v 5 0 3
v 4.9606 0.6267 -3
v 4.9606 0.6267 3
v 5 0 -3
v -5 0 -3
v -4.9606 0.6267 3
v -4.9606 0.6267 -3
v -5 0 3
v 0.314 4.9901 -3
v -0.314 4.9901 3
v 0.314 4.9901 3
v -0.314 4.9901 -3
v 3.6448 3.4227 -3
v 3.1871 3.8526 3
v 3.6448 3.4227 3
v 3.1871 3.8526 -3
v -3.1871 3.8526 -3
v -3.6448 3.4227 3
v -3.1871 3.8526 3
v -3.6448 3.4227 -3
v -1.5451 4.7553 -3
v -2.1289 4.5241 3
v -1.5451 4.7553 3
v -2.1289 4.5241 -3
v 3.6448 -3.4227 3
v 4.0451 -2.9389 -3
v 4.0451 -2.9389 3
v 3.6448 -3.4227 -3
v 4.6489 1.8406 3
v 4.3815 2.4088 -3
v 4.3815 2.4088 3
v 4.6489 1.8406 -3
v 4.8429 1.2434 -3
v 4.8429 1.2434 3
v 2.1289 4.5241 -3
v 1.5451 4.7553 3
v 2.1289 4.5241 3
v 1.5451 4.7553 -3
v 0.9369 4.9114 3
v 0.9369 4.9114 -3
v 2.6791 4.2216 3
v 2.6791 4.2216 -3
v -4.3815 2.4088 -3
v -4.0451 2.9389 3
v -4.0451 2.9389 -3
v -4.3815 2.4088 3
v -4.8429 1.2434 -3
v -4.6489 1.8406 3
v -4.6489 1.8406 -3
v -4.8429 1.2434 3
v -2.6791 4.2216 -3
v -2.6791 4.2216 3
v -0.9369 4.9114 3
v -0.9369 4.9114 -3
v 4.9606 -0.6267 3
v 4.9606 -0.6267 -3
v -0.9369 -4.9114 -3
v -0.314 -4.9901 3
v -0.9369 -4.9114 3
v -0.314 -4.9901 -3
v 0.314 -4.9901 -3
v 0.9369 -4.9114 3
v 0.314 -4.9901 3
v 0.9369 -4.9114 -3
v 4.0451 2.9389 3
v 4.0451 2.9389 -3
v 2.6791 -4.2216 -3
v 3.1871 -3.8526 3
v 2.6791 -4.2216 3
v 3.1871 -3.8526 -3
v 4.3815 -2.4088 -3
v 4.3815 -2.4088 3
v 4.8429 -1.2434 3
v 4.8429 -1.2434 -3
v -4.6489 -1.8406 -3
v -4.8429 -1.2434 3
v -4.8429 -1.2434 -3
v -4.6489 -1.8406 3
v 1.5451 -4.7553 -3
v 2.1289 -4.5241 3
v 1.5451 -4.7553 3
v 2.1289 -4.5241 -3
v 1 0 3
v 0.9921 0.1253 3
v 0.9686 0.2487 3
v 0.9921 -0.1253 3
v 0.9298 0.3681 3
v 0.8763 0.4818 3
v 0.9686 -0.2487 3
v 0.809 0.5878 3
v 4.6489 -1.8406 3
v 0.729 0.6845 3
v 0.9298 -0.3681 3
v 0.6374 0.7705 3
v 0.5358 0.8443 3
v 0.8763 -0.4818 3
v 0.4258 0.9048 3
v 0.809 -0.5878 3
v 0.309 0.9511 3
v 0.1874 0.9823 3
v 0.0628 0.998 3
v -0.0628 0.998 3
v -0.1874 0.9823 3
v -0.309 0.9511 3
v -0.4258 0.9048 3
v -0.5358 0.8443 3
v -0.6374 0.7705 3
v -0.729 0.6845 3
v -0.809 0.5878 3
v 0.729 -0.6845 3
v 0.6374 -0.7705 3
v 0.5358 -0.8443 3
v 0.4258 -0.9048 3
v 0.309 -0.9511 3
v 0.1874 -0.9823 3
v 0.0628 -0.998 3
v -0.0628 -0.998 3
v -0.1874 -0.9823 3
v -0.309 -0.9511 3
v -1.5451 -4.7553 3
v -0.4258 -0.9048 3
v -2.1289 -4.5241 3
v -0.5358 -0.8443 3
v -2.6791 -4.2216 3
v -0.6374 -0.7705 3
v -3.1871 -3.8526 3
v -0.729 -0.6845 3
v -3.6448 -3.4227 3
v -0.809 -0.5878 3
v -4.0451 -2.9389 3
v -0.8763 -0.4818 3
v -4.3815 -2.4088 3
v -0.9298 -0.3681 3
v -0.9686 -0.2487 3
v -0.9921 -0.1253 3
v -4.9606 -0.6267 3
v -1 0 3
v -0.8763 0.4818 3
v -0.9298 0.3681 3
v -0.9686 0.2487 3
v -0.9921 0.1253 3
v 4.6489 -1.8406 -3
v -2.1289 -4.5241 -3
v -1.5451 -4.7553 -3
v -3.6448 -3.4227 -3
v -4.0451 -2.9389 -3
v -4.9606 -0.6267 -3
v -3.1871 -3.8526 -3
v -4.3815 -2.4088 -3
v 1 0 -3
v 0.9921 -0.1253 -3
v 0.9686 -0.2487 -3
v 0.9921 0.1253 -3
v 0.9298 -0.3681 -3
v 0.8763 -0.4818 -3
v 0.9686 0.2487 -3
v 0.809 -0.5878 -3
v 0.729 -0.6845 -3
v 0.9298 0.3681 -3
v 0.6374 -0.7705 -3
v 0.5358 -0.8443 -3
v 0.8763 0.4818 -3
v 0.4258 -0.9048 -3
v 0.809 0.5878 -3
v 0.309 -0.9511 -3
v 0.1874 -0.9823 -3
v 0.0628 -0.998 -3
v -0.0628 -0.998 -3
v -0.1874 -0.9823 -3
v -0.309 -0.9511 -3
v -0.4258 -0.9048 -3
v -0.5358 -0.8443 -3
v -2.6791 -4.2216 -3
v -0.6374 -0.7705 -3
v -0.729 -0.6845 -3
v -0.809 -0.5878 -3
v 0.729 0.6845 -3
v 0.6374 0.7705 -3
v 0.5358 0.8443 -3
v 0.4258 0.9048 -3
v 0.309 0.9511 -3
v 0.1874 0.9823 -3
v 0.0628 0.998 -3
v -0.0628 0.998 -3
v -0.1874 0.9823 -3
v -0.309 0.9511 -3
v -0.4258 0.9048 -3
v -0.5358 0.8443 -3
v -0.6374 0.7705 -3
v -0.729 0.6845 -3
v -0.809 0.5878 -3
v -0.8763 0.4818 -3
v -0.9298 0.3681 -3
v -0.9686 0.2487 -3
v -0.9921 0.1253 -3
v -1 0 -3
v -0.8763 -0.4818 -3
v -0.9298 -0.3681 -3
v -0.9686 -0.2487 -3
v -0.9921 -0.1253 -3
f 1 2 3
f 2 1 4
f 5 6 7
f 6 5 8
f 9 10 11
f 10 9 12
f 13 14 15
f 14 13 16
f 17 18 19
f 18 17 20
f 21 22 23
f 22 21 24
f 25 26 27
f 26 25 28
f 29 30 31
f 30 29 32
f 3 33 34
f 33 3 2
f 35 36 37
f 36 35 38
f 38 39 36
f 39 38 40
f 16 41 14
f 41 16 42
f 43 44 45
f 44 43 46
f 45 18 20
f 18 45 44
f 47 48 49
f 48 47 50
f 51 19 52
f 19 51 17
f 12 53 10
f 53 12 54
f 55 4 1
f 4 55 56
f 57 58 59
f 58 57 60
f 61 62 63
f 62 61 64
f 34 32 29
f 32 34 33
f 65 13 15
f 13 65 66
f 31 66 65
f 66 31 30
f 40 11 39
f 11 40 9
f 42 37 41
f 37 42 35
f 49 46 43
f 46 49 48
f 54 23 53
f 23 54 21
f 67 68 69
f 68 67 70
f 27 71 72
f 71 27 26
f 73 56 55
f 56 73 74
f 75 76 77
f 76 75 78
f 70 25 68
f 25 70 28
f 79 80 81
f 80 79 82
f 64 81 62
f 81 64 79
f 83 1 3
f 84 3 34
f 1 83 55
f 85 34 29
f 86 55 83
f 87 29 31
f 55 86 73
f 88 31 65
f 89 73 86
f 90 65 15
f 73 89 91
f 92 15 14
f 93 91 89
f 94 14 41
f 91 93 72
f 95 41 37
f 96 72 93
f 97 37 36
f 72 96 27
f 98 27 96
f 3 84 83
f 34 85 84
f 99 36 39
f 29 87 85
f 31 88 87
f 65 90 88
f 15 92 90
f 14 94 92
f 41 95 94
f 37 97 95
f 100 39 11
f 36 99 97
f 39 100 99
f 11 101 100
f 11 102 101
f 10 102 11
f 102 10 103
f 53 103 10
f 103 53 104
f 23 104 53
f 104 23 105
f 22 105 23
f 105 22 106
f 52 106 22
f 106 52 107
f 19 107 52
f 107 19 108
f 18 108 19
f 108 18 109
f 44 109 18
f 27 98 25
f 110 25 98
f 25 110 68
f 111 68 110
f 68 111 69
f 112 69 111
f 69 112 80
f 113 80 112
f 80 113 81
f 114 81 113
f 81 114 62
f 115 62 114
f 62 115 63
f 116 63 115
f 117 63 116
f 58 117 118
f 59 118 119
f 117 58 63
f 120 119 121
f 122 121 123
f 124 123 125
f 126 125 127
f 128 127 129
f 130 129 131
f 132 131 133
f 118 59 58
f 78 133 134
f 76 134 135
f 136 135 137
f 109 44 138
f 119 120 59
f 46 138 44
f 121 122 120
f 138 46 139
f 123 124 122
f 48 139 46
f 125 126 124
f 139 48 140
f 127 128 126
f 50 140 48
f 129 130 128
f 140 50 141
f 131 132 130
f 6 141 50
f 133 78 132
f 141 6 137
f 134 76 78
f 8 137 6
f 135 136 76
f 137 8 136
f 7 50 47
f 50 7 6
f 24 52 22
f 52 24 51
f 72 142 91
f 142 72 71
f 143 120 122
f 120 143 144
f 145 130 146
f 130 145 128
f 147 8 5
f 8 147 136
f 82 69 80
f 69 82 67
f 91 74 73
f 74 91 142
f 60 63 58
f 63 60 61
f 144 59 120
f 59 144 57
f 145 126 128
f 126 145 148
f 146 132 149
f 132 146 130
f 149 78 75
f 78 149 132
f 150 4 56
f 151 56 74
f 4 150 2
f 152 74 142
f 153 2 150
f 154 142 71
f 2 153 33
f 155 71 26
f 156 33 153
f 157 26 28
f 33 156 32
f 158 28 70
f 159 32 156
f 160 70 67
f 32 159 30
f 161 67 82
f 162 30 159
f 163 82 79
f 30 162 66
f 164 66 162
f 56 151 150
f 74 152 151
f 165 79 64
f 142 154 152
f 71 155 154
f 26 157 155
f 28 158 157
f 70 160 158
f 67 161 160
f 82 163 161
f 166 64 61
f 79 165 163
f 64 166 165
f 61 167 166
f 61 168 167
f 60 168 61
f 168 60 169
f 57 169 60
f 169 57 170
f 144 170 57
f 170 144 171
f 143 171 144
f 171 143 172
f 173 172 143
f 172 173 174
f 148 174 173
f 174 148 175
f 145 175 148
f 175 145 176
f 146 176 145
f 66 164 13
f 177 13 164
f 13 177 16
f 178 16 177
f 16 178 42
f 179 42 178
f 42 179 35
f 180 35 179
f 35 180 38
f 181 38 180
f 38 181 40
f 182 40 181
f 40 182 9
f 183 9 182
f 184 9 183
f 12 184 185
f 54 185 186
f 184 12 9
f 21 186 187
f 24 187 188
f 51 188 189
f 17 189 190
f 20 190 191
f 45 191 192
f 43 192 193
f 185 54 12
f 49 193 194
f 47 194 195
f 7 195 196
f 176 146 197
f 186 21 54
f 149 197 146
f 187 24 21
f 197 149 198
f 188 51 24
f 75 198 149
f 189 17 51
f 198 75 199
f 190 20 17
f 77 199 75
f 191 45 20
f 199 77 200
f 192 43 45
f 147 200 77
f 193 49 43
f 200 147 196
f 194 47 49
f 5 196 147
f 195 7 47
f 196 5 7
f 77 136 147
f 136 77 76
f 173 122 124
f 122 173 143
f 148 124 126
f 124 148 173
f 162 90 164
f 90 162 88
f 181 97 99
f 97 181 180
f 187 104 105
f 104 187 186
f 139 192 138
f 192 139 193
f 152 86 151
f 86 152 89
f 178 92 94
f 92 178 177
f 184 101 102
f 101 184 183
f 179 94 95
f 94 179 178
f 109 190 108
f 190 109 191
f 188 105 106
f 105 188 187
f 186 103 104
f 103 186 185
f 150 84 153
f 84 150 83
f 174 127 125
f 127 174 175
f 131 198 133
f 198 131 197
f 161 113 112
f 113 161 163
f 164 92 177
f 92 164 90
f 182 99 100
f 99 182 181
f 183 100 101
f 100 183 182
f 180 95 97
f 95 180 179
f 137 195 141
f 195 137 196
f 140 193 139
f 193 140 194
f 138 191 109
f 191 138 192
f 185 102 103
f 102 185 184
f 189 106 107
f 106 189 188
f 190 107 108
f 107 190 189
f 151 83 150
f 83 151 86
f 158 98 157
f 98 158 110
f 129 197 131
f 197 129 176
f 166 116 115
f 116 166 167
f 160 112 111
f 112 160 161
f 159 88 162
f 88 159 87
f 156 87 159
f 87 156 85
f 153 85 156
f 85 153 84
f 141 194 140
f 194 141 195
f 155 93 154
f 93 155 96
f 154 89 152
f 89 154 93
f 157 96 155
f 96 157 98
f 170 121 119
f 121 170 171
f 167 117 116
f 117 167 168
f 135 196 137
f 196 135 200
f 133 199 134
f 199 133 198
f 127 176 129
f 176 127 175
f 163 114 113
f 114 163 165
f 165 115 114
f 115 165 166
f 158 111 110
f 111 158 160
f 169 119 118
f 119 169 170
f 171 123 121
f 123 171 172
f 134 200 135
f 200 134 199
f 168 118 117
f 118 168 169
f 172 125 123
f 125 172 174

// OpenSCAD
$fn = 50;


difference() {
	union() {
		translate(v = [0, 0, -3.0000000000]) {
			cylinder(h = 6, r = 5.0000000000);
		}
	}
	union() {
		translate(v = [0, 0, -100.0000000000]) {
			cylinder(h = 200, r = 1.0000000000);
		}
	}
}
